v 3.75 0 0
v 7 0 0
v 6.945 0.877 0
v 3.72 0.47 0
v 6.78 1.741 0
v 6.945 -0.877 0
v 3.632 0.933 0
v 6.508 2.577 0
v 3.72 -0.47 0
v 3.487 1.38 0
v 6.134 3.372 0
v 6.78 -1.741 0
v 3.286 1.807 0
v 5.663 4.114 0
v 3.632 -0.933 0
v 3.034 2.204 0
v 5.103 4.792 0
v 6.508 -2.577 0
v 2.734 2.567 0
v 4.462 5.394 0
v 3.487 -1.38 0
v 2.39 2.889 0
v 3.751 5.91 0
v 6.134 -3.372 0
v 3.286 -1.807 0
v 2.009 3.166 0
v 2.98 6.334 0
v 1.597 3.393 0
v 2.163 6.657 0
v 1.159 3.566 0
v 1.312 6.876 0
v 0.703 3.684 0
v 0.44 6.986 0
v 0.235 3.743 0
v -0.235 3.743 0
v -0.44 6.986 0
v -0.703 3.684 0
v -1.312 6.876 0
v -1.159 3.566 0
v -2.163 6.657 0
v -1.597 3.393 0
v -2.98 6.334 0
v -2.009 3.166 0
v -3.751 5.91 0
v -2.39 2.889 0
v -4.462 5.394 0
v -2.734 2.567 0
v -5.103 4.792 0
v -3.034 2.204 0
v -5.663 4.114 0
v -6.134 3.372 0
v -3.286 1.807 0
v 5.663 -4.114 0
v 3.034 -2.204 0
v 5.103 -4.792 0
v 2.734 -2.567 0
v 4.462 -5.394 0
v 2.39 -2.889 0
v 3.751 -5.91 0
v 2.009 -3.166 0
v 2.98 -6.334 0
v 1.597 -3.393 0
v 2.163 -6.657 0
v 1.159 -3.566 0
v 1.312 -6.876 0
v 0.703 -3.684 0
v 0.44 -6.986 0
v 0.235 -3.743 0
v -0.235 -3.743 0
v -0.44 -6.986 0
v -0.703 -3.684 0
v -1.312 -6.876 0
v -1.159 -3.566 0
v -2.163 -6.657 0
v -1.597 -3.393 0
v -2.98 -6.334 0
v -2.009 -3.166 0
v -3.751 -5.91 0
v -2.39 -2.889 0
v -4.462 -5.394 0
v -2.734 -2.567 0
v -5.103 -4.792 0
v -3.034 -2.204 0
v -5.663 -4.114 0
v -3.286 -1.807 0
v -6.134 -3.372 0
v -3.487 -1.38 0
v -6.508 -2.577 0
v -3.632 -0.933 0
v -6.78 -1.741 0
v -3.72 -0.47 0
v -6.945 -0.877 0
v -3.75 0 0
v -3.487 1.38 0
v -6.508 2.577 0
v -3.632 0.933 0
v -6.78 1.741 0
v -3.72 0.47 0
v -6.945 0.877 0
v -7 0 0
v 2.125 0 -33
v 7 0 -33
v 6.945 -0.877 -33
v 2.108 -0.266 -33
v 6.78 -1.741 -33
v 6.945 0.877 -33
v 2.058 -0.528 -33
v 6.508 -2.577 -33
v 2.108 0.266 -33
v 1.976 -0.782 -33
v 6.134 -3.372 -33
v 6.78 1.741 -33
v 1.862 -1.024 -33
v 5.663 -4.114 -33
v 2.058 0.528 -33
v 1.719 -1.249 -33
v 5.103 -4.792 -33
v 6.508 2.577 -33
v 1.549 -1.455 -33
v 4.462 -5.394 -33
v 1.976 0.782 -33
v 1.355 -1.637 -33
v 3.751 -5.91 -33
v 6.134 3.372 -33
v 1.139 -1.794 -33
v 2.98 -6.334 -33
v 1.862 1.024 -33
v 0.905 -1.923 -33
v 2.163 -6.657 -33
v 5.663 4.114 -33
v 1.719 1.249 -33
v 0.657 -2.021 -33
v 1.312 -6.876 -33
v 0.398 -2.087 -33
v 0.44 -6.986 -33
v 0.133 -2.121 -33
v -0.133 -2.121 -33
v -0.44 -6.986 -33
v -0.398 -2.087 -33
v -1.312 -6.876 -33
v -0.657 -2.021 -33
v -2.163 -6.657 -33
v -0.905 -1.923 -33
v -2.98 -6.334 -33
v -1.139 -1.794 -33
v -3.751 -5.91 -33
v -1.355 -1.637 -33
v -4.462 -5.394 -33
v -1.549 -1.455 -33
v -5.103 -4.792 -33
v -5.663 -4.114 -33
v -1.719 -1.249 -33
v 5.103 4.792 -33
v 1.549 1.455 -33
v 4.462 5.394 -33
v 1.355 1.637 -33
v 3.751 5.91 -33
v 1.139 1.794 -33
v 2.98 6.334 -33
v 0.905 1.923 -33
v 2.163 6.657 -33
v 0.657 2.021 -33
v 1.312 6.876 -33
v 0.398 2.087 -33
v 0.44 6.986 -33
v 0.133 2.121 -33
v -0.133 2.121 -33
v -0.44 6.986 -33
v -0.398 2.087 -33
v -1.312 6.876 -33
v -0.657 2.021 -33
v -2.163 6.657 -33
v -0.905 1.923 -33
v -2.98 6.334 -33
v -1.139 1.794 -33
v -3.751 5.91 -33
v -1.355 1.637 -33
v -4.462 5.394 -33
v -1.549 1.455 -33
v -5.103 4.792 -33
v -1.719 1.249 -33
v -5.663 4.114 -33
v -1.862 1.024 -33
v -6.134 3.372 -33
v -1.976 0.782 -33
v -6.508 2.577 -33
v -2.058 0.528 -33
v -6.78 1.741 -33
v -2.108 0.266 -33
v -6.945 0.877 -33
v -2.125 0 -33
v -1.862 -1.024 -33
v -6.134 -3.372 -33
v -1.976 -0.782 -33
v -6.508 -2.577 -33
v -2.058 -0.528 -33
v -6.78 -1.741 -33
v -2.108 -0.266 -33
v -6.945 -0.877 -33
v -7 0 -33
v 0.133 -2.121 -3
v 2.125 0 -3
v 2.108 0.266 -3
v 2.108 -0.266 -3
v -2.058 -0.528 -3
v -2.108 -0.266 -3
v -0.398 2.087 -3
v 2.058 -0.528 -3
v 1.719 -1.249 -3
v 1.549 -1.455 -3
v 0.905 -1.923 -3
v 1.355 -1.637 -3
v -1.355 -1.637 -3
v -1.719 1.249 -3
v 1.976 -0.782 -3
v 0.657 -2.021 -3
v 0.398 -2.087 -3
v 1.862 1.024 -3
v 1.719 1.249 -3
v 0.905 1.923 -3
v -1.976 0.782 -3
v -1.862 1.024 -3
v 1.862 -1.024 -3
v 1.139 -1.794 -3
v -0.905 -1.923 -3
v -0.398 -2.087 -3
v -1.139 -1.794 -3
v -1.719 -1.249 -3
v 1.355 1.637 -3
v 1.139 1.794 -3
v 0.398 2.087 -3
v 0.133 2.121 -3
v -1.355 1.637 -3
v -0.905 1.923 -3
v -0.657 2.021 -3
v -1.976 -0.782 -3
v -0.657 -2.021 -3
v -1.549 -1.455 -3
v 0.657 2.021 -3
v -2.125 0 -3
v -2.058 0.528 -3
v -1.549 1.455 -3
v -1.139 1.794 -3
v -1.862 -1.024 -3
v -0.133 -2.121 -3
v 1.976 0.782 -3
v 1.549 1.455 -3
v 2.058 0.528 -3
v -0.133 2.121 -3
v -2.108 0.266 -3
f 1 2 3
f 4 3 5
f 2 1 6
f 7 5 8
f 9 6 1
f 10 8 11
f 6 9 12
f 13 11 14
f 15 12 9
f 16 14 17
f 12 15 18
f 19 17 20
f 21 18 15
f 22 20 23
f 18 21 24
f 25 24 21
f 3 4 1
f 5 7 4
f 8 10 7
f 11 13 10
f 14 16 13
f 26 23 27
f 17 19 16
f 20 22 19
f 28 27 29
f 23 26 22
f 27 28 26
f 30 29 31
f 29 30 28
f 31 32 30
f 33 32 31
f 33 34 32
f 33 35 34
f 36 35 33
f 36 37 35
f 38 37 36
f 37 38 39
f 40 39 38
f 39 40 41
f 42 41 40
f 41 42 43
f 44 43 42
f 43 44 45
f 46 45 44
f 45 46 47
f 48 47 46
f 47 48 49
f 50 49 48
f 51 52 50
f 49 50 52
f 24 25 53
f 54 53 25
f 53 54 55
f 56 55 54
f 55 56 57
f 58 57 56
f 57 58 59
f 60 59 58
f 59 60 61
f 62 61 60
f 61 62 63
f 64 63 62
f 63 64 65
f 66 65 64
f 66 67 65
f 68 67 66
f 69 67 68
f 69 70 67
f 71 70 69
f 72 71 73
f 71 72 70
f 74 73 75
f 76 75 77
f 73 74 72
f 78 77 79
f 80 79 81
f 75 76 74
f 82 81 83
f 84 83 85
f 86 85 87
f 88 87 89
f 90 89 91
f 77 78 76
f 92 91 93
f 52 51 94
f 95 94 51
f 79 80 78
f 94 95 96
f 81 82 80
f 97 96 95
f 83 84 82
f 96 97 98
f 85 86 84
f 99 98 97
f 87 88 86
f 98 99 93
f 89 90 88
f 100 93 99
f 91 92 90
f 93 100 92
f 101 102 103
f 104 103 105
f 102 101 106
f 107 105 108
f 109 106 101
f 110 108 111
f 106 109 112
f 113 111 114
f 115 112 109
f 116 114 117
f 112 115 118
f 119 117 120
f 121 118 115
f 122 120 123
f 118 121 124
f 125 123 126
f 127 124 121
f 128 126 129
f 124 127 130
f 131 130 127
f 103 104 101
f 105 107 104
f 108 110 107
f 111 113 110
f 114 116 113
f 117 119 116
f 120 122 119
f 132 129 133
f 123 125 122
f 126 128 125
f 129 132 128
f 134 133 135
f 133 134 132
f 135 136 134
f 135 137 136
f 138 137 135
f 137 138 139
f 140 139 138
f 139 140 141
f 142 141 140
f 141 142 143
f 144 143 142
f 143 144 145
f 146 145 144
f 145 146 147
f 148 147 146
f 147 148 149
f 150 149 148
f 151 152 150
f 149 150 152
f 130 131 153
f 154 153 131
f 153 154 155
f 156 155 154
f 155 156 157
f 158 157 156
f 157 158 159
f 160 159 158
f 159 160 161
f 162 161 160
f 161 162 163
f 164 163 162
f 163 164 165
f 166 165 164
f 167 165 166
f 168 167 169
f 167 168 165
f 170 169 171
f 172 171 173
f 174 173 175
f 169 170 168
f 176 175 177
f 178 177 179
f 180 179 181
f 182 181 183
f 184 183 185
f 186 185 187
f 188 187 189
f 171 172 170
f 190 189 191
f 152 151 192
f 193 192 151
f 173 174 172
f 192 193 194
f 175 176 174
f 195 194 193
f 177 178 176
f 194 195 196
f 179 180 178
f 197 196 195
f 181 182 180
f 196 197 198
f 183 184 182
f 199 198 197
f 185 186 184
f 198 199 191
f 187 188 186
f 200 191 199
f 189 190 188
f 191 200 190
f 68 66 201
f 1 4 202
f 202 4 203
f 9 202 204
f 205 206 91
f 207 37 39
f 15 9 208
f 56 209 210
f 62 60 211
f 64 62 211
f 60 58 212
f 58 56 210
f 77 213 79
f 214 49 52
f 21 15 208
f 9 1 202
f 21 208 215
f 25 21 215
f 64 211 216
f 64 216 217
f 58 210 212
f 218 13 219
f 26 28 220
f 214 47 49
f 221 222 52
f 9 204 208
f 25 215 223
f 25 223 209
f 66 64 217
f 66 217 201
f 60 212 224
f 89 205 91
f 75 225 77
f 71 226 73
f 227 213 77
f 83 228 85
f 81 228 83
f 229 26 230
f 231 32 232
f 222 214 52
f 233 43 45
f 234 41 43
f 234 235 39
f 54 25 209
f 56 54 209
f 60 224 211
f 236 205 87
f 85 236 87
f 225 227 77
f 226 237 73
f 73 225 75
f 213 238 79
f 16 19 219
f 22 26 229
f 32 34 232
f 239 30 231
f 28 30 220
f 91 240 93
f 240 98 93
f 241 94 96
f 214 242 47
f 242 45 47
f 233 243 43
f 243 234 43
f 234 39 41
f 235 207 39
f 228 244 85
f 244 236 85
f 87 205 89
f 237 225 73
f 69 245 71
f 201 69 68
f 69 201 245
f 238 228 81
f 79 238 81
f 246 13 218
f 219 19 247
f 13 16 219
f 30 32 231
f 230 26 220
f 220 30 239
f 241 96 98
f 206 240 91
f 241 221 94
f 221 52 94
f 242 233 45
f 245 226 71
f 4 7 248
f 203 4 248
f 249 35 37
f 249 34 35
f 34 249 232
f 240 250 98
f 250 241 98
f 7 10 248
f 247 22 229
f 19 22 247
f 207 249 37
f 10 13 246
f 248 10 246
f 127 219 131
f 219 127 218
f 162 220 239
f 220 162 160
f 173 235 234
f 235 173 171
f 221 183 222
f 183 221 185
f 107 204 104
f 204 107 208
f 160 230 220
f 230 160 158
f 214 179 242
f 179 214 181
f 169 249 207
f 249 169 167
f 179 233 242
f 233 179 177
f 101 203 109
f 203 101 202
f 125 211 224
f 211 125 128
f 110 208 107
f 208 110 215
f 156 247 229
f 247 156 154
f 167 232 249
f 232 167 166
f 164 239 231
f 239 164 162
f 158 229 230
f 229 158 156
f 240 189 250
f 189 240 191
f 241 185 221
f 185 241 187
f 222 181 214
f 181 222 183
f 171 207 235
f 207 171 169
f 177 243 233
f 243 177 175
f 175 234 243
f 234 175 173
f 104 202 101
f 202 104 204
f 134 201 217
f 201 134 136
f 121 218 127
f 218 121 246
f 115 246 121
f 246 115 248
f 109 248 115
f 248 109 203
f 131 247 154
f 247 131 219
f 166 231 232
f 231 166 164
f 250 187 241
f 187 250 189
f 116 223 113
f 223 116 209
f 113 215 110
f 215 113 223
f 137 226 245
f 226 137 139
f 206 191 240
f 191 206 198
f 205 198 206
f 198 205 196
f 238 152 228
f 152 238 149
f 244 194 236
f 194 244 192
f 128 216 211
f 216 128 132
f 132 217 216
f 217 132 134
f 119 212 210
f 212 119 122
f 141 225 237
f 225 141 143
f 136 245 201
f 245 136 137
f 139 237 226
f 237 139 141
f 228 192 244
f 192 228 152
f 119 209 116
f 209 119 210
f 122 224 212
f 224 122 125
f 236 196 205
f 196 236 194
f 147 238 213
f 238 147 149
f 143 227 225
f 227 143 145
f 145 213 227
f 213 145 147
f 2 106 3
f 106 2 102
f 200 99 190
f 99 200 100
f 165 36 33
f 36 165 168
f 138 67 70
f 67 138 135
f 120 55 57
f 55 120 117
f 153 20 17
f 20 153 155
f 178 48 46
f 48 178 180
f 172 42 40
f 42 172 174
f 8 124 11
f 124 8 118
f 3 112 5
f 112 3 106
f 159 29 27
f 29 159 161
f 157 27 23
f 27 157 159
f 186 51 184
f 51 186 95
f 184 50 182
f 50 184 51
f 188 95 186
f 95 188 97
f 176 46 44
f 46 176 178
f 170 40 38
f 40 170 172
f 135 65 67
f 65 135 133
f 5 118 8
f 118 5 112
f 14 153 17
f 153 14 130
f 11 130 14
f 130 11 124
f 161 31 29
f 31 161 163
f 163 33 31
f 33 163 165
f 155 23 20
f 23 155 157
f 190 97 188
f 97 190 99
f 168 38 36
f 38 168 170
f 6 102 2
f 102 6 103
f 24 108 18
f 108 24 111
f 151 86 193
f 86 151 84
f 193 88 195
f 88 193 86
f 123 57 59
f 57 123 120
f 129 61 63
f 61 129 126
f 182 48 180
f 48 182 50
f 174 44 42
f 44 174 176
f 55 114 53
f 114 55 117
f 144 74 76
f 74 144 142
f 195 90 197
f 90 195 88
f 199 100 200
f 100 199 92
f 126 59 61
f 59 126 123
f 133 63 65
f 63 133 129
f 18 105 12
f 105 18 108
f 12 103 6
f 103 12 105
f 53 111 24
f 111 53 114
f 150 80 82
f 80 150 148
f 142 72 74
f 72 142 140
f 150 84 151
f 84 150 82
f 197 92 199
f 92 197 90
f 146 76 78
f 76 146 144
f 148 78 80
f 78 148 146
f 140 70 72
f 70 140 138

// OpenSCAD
$fn = 50;


difference() {
	union() {
		translate(v = [0, 0, -33.0000000000]) {
			cylinder(h = 33, r = 7.0000000000);
		}
		cylinder(h = 0, r = 17.0000000000);
	}
	union() {
		translate(v = [0, 0, 0]) {
			rotate(a = [0, 0, 0]) {
				difference() {
					union() {
						#translate(v = [0, 0, -33.0000000000]) {
							cylinder(h = 33, r = 2.0000000000);
						}
						#translate(v = [0, 0, -3]) {
							cylinder(h = 3, r1 = 2.1250000000, r2 = 3.7500000000);
						}
						#translate(v = [0, 0, -33.0000000000]) {
							cylinder(h = 33, r = 2.1250000000);
						}
						#translate(v = [0, 0, -33.0000000000]) {
							cylinder(h = 33, r = 2.0000000000);
						}
					}
					union();
				}
			}
		}
	}
}
